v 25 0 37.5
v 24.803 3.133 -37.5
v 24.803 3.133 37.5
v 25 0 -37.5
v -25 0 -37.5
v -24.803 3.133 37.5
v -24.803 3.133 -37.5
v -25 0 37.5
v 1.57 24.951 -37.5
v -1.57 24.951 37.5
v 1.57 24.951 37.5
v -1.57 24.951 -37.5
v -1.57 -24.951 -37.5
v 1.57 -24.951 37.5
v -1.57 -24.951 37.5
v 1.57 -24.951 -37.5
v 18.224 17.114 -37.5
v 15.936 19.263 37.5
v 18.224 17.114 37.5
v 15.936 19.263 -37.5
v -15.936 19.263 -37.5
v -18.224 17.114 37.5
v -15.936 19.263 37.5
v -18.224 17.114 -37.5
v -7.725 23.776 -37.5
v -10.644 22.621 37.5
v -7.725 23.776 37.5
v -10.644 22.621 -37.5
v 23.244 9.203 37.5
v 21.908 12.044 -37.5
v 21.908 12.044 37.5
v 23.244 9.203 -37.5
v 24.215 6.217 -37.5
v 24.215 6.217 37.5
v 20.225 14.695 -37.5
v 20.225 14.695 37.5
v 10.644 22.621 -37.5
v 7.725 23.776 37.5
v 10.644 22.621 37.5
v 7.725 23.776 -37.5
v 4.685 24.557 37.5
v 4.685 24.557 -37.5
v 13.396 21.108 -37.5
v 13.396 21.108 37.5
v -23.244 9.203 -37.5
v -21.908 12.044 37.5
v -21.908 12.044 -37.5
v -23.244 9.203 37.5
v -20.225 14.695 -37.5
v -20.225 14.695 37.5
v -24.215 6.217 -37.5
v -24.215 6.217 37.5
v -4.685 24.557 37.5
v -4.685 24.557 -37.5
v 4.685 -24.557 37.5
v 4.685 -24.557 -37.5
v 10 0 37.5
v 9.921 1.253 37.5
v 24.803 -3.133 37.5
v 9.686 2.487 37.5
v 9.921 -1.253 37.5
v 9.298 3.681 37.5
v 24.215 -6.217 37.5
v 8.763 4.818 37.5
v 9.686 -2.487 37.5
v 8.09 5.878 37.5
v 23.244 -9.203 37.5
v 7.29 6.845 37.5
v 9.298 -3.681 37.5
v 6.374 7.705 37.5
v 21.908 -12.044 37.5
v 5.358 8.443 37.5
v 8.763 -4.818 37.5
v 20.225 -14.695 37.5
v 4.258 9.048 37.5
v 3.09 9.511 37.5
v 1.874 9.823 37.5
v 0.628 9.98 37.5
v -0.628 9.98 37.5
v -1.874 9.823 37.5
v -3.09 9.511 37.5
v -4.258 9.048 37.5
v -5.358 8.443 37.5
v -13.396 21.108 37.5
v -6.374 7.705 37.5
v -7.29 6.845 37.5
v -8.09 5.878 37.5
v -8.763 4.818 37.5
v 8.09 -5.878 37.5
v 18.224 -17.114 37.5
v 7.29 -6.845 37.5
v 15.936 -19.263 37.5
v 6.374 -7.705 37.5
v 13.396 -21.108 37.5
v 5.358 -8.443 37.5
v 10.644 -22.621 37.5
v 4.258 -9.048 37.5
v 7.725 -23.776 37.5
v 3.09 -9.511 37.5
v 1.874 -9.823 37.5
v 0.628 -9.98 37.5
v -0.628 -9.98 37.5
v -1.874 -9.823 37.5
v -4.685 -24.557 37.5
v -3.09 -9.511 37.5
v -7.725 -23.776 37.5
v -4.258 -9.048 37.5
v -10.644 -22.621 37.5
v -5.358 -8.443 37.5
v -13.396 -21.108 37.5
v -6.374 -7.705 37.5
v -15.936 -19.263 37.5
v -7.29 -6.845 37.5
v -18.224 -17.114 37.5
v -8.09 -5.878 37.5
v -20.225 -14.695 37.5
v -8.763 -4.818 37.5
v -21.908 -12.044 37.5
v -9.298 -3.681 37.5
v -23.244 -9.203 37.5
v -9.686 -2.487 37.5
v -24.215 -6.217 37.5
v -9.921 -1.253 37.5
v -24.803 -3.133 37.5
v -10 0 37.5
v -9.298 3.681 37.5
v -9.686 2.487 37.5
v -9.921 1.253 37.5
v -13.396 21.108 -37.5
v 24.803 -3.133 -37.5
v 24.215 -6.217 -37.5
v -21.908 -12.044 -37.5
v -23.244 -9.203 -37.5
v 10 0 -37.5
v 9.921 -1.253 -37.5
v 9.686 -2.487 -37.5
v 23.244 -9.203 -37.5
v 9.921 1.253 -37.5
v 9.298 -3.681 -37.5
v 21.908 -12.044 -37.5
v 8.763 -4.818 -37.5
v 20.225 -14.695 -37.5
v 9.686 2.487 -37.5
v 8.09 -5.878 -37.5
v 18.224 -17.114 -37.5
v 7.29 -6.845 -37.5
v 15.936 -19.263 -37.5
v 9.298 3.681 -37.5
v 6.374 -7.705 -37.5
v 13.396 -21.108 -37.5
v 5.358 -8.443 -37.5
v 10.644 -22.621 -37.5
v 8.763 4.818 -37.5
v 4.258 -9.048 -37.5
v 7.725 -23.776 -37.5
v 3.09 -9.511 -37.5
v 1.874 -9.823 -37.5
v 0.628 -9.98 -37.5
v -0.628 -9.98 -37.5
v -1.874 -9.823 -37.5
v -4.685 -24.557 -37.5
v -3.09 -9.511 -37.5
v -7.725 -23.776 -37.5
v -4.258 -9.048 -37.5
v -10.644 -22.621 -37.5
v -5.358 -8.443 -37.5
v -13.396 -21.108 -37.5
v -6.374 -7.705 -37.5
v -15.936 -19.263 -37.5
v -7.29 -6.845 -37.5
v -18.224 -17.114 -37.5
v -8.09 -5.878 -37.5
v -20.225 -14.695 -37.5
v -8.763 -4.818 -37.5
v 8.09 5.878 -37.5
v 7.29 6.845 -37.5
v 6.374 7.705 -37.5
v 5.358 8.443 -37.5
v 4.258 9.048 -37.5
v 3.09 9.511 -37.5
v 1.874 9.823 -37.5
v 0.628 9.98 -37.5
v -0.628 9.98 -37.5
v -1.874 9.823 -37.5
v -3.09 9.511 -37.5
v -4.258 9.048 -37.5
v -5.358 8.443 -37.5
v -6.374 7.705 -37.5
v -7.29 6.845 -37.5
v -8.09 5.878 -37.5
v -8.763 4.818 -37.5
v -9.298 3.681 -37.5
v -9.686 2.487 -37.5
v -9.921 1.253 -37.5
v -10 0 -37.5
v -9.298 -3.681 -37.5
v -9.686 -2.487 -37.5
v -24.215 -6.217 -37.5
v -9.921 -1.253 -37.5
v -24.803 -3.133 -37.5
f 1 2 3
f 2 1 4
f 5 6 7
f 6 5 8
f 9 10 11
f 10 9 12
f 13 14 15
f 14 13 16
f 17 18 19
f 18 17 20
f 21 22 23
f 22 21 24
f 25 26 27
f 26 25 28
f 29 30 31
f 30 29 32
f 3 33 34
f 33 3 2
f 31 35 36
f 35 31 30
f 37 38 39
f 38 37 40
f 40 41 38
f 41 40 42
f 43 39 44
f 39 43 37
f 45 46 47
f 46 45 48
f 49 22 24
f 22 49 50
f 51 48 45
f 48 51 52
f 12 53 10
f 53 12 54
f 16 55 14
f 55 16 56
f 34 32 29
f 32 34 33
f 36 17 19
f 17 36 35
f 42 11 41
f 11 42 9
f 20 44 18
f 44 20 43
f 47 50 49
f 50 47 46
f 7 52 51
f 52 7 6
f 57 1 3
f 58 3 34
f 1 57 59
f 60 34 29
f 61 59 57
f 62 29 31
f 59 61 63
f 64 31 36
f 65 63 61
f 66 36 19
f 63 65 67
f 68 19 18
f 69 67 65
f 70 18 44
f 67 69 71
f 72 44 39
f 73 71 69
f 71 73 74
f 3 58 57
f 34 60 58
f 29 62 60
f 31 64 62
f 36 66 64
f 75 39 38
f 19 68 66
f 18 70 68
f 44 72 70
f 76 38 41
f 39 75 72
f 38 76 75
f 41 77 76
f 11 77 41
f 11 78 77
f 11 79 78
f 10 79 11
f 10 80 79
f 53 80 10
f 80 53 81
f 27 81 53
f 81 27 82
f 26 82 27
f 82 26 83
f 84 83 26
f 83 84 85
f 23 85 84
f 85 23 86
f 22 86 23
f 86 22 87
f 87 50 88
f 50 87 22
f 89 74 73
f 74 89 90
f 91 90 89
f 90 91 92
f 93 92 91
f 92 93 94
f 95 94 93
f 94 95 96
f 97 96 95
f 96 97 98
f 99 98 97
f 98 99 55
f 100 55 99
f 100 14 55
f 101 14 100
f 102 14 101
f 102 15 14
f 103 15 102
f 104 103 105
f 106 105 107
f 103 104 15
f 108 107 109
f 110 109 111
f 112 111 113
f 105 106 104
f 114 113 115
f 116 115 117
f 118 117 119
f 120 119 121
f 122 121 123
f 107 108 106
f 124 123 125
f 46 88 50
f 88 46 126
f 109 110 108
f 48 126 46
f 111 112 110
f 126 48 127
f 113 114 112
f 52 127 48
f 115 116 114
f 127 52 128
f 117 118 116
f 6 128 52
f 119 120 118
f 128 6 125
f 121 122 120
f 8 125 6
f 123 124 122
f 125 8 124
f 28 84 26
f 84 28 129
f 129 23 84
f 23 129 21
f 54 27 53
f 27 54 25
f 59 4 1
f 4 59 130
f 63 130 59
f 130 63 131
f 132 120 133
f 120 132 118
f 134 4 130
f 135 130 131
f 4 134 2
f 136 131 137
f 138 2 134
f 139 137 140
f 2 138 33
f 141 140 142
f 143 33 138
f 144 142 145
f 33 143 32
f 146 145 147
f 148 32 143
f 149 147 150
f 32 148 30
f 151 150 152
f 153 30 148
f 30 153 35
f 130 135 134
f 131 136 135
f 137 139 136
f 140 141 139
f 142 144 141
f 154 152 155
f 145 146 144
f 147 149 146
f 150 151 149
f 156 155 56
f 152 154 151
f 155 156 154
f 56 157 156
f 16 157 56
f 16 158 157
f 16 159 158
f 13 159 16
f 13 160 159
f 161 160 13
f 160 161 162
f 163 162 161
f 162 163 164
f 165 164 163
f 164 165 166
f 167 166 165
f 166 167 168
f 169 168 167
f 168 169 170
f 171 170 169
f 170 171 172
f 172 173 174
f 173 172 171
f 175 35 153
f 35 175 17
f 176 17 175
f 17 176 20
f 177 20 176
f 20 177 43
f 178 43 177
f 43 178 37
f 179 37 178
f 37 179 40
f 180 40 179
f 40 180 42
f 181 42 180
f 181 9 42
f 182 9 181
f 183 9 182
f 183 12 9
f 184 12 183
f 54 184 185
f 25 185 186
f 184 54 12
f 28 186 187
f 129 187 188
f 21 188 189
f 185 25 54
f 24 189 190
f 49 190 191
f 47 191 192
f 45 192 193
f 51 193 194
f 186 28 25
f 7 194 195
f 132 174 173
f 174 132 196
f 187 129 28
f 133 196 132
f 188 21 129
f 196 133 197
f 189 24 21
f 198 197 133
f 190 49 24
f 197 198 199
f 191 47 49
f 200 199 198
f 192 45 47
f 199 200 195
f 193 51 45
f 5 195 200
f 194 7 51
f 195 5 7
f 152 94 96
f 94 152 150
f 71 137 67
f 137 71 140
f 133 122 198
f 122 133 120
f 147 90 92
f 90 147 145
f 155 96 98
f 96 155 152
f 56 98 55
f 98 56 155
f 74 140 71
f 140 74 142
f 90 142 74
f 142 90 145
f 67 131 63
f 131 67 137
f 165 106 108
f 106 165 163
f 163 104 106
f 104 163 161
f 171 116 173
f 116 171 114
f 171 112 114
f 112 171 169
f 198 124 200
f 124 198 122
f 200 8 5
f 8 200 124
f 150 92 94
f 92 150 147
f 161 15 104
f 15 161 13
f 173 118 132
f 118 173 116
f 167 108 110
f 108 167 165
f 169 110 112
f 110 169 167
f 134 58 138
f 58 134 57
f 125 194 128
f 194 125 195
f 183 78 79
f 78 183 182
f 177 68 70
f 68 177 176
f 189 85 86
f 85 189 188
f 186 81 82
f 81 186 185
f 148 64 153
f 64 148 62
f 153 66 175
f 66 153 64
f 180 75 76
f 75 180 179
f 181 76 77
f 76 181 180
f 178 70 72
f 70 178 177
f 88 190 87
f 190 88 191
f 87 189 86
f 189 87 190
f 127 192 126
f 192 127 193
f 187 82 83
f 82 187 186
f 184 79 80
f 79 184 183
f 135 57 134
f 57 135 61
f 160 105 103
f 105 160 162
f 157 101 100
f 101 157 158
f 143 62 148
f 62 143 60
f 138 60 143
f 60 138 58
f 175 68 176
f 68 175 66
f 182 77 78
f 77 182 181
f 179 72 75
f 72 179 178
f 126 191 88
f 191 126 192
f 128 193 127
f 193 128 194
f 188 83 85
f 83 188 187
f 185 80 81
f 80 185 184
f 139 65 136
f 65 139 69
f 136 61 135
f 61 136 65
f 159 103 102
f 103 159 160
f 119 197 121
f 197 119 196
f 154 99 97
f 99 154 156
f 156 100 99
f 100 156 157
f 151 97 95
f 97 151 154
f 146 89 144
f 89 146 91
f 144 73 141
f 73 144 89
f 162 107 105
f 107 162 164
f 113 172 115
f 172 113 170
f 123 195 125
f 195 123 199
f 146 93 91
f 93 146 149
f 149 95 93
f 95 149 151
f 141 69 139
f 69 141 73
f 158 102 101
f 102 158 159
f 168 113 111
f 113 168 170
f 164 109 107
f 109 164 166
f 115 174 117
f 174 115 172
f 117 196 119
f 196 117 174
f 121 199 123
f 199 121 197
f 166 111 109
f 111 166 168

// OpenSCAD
$fn = 50;


difference() {
	union() {
		translate(v = [0, 0, -37.5000000000]) {
			cylinder(h = 75, r = 25.0000000000);
		}
	}
	union() {
		translate(v = [0, 0, -100.0000000000]) {
			cylinder(h = 200, r = 10);
		}
	}
}
